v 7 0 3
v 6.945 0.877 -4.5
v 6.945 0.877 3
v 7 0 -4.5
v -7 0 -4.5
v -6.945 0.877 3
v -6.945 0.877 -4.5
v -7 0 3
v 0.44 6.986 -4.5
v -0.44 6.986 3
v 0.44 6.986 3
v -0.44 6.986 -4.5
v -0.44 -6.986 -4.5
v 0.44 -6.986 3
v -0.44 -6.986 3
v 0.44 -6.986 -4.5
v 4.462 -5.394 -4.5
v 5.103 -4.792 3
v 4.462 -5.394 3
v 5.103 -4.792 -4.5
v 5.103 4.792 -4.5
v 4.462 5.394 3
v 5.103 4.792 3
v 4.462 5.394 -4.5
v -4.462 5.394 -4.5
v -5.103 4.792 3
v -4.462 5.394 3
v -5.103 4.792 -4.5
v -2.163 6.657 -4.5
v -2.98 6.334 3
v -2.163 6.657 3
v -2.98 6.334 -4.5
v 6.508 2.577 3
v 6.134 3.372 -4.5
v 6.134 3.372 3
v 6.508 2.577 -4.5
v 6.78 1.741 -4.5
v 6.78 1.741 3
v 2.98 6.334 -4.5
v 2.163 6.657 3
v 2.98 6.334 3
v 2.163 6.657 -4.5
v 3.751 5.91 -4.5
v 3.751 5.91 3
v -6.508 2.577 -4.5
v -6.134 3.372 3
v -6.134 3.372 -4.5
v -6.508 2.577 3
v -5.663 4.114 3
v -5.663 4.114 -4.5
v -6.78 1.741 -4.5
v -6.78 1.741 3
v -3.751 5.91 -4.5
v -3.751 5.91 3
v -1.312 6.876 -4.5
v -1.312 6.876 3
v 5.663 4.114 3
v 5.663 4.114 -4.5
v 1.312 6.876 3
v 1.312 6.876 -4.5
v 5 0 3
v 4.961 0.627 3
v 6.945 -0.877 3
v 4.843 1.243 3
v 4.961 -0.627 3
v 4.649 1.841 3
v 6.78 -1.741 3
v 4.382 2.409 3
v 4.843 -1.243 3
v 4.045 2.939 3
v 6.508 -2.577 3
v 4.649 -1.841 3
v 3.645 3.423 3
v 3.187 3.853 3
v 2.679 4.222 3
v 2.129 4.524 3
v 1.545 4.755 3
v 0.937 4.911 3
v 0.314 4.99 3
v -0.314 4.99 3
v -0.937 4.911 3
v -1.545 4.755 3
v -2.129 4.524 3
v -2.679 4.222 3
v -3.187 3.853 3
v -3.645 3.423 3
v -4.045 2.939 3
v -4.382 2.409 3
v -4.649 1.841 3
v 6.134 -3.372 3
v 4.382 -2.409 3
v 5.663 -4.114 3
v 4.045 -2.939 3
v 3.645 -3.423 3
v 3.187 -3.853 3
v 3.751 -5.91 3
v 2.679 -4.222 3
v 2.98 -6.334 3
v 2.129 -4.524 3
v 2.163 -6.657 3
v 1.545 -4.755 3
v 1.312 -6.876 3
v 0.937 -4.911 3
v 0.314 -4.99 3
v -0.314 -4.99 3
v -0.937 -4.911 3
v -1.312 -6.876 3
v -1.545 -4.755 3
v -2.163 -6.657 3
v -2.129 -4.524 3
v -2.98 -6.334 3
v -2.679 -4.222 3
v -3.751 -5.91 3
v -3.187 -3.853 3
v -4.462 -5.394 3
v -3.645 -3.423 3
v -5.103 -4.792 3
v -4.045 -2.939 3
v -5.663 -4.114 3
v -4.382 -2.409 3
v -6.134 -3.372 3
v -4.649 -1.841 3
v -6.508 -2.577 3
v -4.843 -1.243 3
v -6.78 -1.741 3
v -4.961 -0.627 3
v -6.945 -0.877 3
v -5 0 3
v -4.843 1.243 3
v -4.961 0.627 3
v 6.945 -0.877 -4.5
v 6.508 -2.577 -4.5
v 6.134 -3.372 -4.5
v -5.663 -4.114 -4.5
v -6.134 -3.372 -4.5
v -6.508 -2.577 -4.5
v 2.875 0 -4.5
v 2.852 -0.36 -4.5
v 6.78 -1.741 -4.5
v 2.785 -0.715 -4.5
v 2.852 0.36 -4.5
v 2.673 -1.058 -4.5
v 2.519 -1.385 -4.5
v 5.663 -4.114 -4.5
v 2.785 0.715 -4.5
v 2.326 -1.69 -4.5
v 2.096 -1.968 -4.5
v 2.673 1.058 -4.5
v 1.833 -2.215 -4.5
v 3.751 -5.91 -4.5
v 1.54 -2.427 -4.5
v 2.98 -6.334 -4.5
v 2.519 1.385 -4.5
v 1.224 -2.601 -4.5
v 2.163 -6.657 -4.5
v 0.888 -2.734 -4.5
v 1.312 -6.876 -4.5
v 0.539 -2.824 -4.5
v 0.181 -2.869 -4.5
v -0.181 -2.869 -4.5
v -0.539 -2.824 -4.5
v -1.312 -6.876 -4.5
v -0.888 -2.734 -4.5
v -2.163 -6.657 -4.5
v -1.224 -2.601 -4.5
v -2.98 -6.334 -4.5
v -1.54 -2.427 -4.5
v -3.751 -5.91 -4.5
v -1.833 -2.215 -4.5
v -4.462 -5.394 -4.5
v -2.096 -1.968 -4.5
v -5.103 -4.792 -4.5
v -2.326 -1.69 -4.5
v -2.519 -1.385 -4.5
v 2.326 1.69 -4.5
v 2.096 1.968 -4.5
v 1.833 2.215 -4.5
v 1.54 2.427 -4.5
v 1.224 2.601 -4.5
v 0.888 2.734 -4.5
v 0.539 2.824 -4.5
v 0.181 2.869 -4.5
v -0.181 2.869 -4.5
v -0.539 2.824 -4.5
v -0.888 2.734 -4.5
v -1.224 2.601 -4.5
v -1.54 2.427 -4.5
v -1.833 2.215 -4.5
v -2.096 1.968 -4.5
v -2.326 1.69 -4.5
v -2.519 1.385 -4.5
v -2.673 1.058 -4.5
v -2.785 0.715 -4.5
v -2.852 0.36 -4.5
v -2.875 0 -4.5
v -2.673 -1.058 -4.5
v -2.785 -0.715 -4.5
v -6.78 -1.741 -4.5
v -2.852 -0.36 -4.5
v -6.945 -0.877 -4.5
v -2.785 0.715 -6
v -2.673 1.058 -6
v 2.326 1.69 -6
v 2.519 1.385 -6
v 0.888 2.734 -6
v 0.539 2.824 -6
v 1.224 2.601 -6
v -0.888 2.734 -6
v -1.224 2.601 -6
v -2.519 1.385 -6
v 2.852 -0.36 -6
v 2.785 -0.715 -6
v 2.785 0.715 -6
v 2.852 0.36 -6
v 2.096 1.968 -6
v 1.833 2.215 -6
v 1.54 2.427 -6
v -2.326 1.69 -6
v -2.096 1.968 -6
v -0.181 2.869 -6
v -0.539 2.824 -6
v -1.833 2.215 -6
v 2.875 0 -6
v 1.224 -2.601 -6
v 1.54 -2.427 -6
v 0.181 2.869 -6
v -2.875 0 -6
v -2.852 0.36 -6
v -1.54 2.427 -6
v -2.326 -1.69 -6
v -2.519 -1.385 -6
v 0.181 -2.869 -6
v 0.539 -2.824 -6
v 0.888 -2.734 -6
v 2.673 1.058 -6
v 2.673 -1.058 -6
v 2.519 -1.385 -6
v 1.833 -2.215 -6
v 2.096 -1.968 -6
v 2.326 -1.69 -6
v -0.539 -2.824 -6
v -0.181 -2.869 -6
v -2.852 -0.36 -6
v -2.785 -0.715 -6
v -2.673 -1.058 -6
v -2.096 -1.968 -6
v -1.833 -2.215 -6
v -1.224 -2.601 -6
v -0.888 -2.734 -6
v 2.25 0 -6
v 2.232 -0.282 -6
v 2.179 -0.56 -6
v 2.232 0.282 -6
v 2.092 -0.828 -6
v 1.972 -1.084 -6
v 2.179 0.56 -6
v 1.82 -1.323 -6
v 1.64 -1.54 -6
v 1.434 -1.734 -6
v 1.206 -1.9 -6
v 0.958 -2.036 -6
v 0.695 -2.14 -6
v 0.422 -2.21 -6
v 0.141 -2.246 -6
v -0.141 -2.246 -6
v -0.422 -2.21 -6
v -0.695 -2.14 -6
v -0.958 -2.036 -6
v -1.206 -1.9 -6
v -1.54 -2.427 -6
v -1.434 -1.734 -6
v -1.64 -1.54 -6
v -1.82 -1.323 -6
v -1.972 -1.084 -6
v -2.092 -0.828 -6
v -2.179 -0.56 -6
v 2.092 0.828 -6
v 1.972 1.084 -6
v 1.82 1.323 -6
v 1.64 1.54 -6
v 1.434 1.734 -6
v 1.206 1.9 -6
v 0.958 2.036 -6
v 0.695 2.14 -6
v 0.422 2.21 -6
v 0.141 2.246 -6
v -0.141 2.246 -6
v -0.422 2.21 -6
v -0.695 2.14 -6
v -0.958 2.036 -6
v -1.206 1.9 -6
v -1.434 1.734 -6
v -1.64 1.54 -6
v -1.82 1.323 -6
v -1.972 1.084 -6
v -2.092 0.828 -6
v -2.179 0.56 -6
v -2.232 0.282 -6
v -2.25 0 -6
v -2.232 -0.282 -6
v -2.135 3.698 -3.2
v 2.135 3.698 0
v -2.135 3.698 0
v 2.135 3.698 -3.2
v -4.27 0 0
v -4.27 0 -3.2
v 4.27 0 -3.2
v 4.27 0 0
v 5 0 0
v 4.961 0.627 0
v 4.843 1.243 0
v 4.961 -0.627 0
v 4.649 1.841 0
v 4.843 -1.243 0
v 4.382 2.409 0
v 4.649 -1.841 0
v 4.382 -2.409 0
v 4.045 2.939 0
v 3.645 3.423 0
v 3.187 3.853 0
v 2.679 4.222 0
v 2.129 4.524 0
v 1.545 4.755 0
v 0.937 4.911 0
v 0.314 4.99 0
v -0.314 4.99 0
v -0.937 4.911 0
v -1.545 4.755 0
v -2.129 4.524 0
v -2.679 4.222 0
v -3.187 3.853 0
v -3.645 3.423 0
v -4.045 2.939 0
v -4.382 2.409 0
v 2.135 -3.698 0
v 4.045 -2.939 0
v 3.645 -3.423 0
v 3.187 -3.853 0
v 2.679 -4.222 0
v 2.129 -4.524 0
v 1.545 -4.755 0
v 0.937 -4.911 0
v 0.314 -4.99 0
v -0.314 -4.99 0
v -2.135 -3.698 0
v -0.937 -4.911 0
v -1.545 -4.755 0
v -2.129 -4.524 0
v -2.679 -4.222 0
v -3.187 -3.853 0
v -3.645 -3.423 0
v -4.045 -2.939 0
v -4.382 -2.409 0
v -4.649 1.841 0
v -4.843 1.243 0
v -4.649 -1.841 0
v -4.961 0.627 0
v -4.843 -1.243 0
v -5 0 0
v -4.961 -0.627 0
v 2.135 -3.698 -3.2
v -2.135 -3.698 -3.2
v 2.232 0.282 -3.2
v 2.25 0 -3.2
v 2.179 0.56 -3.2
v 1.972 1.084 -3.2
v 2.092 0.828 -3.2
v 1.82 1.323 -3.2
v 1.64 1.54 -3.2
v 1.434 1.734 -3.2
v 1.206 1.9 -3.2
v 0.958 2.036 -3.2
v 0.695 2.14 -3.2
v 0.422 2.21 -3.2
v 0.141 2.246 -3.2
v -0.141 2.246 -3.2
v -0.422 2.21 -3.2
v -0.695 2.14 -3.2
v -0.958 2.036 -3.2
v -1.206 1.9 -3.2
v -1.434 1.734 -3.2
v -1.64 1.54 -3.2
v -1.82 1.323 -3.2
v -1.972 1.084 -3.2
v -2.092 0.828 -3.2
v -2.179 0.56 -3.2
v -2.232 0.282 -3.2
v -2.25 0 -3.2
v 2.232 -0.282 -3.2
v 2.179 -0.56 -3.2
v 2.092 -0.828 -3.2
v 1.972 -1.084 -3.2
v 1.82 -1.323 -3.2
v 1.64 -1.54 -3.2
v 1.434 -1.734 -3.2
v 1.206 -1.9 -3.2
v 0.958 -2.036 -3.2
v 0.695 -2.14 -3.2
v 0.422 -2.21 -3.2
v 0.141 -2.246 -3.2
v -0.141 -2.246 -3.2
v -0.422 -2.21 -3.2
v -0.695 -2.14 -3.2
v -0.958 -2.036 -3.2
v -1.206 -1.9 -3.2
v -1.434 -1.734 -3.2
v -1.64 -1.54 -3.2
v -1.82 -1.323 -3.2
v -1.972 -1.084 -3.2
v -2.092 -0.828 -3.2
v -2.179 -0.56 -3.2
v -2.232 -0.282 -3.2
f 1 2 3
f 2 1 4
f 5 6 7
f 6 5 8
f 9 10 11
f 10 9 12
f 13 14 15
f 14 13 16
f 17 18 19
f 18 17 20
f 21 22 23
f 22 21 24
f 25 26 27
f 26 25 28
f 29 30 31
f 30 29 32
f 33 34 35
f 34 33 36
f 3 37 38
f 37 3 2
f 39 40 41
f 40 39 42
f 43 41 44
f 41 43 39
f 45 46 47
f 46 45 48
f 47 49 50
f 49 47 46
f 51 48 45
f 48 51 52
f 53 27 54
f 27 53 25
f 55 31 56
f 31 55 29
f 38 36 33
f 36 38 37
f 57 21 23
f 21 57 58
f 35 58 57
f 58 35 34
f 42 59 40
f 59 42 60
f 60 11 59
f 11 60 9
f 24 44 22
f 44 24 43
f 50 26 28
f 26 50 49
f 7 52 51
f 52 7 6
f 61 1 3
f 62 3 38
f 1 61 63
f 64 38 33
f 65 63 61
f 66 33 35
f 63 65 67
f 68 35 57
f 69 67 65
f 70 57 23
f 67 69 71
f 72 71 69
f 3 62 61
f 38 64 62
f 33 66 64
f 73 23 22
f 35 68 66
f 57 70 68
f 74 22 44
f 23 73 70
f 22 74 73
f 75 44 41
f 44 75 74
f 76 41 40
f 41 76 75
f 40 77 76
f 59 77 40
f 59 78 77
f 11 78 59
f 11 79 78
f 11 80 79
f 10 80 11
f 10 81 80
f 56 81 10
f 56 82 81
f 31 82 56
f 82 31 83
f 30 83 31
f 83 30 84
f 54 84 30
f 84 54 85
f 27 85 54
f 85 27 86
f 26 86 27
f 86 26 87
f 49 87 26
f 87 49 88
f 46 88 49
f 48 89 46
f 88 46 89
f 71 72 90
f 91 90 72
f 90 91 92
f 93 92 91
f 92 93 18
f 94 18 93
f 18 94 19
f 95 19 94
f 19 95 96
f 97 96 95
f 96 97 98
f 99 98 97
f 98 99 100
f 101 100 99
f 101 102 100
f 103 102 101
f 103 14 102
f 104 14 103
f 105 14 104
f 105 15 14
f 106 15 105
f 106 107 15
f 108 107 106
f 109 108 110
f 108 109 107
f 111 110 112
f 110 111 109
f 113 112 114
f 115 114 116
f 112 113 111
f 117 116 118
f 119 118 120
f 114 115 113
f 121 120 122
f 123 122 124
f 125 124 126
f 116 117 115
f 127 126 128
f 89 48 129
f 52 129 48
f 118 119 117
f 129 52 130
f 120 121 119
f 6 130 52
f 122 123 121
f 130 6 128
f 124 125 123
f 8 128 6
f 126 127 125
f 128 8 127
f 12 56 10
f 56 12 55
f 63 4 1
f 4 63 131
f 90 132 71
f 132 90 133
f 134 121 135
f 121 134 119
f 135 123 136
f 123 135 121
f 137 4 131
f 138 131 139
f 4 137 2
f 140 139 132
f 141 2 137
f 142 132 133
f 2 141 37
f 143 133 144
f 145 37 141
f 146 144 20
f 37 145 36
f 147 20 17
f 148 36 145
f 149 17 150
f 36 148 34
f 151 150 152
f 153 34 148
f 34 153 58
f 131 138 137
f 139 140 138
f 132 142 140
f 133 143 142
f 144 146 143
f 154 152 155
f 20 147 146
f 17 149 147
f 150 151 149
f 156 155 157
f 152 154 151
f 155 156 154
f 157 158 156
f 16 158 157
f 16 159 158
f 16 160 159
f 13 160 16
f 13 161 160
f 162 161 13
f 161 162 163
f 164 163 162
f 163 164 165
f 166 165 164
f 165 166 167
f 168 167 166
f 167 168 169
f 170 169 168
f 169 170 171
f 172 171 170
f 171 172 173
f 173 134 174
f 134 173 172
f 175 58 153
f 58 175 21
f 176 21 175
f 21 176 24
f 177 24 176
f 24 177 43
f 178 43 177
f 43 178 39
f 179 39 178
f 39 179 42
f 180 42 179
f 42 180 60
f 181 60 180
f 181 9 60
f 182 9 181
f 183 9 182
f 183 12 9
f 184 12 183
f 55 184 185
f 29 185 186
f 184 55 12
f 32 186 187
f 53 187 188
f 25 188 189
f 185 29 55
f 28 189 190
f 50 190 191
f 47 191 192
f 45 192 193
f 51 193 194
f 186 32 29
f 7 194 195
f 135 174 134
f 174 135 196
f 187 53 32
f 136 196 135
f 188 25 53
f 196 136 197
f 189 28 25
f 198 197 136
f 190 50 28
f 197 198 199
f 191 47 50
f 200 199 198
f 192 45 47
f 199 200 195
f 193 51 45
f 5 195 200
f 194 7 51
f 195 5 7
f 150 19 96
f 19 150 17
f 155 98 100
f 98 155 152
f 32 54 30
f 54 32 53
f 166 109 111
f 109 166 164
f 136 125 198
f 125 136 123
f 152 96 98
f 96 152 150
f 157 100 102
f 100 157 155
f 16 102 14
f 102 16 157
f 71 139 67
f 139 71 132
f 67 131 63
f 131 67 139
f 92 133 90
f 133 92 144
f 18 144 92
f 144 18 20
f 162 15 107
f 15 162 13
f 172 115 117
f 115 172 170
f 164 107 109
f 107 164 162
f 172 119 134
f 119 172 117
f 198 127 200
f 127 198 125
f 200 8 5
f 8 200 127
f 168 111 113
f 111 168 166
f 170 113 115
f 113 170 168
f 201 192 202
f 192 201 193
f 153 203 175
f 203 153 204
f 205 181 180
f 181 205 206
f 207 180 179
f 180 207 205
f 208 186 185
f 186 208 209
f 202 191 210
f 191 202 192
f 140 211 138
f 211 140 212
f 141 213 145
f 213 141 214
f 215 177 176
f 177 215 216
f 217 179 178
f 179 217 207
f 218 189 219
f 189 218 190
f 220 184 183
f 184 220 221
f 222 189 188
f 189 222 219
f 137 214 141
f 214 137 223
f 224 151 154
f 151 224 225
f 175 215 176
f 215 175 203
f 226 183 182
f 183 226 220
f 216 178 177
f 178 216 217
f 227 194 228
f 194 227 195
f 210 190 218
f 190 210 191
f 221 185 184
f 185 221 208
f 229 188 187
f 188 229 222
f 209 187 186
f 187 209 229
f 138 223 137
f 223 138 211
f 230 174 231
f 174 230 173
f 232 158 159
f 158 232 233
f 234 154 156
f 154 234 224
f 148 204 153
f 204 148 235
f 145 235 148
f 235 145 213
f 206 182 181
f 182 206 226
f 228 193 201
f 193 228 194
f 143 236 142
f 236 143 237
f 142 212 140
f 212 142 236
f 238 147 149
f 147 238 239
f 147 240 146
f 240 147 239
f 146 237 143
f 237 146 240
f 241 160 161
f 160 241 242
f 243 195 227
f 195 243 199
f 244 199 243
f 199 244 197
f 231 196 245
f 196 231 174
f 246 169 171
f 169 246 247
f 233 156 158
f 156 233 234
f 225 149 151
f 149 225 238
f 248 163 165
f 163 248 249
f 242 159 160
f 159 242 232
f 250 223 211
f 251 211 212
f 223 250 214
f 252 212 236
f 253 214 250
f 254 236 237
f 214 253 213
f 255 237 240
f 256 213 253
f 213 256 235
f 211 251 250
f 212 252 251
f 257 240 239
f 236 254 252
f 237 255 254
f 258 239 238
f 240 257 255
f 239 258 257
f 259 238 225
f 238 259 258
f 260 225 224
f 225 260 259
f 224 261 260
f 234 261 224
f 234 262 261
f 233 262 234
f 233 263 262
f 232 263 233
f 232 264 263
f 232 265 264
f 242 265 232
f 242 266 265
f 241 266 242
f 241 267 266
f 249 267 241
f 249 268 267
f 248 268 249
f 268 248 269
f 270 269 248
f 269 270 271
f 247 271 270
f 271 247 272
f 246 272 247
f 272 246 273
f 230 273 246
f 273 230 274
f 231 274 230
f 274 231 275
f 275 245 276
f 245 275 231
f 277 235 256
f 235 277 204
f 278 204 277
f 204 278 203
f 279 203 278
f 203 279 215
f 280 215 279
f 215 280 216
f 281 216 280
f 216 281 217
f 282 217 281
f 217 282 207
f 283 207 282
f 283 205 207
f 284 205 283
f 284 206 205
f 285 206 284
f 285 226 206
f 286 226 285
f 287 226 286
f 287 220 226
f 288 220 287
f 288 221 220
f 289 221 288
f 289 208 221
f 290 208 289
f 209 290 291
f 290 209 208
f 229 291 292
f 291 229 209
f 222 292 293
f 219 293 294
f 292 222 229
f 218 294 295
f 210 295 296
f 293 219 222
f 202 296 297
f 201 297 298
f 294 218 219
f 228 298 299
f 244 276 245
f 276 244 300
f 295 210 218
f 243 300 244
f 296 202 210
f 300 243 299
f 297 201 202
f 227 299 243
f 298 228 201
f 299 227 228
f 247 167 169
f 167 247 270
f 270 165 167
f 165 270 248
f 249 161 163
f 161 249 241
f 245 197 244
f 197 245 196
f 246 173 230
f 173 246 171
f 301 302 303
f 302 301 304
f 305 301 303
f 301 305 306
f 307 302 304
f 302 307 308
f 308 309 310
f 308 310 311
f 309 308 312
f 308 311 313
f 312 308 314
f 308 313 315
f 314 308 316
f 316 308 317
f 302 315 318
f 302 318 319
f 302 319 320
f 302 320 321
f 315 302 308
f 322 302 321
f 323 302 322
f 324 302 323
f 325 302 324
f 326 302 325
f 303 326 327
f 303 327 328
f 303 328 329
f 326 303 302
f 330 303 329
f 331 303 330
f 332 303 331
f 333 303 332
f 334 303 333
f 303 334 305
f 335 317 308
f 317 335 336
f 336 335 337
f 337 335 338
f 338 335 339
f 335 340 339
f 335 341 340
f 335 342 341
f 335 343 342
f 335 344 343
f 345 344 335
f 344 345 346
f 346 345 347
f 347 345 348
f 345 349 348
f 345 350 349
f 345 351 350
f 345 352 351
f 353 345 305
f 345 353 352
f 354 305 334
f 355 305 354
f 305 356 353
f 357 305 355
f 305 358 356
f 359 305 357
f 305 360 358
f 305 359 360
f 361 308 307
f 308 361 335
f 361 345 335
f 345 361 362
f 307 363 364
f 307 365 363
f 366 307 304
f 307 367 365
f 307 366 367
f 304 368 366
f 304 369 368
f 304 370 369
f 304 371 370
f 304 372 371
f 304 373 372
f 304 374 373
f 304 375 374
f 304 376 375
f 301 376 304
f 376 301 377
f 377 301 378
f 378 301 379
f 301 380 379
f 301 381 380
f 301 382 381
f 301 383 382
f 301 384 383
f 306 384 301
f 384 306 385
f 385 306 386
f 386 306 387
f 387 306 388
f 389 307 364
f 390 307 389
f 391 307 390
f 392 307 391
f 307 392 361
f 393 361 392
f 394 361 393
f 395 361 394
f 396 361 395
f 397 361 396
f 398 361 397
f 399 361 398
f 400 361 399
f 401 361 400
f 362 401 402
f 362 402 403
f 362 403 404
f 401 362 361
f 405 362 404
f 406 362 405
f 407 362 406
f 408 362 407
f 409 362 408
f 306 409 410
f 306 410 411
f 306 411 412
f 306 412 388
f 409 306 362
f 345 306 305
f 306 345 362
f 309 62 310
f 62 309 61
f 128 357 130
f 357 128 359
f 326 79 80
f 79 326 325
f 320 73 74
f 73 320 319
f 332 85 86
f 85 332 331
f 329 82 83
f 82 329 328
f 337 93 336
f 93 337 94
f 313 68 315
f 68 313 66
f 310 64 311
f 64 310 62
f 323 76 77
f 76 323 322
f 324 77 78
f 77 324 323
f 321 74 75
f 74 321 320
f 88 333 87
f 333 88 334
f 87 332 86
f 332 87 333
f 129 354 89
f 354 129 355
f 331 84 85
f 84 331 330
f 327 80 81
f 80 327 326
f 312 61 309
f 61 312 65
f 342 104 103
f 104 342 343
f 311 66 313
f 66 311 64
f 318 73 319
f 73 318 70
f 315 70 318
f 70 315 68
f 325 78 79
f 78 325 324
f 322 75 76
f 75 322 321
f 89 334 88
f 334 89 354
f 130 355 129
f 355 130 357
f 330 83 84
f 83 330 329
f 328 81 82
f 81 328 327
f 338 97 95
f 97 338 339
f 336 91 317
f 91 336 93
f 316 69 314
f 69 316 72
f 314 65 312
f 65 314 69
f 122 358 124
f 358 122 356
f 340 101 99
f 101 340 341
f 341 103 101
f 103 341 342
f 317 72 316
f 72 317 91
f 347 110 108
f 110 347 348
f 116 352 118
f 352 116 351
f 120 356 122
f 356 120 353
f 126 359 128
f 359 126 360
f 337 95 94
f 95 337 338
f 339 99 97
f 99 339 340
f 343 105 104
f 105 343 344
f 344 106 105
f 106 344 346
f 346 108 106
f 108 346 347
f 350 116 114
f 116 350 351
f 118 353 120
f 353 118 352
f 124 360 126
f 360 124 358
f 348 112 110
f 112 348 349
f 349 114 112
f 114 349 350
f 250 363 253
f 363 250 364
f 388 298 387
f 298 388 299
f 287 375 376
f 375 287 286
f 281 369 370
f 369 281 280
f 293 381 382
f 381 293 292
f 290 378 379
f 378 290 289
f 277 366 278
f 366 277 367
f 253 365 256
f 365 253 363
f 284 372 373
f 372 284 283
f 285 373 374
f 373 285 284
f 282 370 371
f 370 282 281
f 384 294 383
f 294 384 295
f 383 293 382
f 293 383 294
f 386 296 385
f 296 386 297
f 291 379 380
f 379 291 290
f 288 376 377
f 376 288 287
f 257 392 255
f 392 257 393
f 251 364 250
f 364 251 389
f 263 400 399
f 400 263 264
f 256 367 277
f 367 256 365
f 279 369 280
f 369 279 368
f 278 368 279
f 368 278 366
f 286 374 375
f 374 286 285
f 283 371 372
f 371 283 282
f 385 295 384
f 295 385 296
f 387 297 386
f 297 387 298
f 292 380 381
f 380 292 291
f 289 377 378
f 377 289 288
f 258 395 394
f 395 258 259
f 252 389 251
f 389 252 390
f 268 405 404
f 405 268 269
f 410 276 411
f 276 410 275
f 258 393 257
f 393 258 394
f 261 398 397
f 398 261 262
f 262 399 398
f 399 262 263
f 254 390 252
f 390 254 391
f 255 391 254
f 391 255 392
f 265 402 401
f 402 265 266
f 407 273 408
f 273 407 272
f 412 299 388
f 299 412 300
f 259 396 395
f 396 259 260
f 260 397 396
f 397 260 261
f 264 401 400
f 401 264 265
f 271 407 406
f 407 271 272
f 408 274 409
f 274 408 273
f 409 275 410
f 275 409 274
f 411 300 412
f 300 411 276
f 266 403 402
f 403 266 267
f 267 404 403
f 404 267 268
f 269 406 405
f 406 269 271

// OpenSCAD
$fn = 50;

difference() {
	union() {
		translate(v = [0, 0, -4.5]) {
			cylinder(h = 7.5, r = 7.0);
		}
		#translate(v = [0, 0, -6.0]) {
			cylinder(h = 6, r = 2.875);
		}
	}
	union() {
		translate(v = [0, 0, 0]) {
			rotate(a = [0, 0, 0]) {
				difference() {
					union() {
						translate(v = [0, 0, -3.2]) {
							linear_extrude(height = 3.2) {
								polygon(points = [[4.2698, 0.0], [2.1349000000000005, 3.697755269078796], [-2.134899999999999, 3.6977552690787965], [-4.2698, 5.228996902999369e-16], [-2.134900000000002, -3.6977552690787956], [2.1348999999999974, -3.697755269078798]]);
							}
						}
					}
					union();
				}
			}
		}
		#cylinder(h = 3, r = 5.0);
		#translate(v = [0, 0, -100.0]) {
			cylinder(h = 200, r = 2.25);
		}
	}
}
